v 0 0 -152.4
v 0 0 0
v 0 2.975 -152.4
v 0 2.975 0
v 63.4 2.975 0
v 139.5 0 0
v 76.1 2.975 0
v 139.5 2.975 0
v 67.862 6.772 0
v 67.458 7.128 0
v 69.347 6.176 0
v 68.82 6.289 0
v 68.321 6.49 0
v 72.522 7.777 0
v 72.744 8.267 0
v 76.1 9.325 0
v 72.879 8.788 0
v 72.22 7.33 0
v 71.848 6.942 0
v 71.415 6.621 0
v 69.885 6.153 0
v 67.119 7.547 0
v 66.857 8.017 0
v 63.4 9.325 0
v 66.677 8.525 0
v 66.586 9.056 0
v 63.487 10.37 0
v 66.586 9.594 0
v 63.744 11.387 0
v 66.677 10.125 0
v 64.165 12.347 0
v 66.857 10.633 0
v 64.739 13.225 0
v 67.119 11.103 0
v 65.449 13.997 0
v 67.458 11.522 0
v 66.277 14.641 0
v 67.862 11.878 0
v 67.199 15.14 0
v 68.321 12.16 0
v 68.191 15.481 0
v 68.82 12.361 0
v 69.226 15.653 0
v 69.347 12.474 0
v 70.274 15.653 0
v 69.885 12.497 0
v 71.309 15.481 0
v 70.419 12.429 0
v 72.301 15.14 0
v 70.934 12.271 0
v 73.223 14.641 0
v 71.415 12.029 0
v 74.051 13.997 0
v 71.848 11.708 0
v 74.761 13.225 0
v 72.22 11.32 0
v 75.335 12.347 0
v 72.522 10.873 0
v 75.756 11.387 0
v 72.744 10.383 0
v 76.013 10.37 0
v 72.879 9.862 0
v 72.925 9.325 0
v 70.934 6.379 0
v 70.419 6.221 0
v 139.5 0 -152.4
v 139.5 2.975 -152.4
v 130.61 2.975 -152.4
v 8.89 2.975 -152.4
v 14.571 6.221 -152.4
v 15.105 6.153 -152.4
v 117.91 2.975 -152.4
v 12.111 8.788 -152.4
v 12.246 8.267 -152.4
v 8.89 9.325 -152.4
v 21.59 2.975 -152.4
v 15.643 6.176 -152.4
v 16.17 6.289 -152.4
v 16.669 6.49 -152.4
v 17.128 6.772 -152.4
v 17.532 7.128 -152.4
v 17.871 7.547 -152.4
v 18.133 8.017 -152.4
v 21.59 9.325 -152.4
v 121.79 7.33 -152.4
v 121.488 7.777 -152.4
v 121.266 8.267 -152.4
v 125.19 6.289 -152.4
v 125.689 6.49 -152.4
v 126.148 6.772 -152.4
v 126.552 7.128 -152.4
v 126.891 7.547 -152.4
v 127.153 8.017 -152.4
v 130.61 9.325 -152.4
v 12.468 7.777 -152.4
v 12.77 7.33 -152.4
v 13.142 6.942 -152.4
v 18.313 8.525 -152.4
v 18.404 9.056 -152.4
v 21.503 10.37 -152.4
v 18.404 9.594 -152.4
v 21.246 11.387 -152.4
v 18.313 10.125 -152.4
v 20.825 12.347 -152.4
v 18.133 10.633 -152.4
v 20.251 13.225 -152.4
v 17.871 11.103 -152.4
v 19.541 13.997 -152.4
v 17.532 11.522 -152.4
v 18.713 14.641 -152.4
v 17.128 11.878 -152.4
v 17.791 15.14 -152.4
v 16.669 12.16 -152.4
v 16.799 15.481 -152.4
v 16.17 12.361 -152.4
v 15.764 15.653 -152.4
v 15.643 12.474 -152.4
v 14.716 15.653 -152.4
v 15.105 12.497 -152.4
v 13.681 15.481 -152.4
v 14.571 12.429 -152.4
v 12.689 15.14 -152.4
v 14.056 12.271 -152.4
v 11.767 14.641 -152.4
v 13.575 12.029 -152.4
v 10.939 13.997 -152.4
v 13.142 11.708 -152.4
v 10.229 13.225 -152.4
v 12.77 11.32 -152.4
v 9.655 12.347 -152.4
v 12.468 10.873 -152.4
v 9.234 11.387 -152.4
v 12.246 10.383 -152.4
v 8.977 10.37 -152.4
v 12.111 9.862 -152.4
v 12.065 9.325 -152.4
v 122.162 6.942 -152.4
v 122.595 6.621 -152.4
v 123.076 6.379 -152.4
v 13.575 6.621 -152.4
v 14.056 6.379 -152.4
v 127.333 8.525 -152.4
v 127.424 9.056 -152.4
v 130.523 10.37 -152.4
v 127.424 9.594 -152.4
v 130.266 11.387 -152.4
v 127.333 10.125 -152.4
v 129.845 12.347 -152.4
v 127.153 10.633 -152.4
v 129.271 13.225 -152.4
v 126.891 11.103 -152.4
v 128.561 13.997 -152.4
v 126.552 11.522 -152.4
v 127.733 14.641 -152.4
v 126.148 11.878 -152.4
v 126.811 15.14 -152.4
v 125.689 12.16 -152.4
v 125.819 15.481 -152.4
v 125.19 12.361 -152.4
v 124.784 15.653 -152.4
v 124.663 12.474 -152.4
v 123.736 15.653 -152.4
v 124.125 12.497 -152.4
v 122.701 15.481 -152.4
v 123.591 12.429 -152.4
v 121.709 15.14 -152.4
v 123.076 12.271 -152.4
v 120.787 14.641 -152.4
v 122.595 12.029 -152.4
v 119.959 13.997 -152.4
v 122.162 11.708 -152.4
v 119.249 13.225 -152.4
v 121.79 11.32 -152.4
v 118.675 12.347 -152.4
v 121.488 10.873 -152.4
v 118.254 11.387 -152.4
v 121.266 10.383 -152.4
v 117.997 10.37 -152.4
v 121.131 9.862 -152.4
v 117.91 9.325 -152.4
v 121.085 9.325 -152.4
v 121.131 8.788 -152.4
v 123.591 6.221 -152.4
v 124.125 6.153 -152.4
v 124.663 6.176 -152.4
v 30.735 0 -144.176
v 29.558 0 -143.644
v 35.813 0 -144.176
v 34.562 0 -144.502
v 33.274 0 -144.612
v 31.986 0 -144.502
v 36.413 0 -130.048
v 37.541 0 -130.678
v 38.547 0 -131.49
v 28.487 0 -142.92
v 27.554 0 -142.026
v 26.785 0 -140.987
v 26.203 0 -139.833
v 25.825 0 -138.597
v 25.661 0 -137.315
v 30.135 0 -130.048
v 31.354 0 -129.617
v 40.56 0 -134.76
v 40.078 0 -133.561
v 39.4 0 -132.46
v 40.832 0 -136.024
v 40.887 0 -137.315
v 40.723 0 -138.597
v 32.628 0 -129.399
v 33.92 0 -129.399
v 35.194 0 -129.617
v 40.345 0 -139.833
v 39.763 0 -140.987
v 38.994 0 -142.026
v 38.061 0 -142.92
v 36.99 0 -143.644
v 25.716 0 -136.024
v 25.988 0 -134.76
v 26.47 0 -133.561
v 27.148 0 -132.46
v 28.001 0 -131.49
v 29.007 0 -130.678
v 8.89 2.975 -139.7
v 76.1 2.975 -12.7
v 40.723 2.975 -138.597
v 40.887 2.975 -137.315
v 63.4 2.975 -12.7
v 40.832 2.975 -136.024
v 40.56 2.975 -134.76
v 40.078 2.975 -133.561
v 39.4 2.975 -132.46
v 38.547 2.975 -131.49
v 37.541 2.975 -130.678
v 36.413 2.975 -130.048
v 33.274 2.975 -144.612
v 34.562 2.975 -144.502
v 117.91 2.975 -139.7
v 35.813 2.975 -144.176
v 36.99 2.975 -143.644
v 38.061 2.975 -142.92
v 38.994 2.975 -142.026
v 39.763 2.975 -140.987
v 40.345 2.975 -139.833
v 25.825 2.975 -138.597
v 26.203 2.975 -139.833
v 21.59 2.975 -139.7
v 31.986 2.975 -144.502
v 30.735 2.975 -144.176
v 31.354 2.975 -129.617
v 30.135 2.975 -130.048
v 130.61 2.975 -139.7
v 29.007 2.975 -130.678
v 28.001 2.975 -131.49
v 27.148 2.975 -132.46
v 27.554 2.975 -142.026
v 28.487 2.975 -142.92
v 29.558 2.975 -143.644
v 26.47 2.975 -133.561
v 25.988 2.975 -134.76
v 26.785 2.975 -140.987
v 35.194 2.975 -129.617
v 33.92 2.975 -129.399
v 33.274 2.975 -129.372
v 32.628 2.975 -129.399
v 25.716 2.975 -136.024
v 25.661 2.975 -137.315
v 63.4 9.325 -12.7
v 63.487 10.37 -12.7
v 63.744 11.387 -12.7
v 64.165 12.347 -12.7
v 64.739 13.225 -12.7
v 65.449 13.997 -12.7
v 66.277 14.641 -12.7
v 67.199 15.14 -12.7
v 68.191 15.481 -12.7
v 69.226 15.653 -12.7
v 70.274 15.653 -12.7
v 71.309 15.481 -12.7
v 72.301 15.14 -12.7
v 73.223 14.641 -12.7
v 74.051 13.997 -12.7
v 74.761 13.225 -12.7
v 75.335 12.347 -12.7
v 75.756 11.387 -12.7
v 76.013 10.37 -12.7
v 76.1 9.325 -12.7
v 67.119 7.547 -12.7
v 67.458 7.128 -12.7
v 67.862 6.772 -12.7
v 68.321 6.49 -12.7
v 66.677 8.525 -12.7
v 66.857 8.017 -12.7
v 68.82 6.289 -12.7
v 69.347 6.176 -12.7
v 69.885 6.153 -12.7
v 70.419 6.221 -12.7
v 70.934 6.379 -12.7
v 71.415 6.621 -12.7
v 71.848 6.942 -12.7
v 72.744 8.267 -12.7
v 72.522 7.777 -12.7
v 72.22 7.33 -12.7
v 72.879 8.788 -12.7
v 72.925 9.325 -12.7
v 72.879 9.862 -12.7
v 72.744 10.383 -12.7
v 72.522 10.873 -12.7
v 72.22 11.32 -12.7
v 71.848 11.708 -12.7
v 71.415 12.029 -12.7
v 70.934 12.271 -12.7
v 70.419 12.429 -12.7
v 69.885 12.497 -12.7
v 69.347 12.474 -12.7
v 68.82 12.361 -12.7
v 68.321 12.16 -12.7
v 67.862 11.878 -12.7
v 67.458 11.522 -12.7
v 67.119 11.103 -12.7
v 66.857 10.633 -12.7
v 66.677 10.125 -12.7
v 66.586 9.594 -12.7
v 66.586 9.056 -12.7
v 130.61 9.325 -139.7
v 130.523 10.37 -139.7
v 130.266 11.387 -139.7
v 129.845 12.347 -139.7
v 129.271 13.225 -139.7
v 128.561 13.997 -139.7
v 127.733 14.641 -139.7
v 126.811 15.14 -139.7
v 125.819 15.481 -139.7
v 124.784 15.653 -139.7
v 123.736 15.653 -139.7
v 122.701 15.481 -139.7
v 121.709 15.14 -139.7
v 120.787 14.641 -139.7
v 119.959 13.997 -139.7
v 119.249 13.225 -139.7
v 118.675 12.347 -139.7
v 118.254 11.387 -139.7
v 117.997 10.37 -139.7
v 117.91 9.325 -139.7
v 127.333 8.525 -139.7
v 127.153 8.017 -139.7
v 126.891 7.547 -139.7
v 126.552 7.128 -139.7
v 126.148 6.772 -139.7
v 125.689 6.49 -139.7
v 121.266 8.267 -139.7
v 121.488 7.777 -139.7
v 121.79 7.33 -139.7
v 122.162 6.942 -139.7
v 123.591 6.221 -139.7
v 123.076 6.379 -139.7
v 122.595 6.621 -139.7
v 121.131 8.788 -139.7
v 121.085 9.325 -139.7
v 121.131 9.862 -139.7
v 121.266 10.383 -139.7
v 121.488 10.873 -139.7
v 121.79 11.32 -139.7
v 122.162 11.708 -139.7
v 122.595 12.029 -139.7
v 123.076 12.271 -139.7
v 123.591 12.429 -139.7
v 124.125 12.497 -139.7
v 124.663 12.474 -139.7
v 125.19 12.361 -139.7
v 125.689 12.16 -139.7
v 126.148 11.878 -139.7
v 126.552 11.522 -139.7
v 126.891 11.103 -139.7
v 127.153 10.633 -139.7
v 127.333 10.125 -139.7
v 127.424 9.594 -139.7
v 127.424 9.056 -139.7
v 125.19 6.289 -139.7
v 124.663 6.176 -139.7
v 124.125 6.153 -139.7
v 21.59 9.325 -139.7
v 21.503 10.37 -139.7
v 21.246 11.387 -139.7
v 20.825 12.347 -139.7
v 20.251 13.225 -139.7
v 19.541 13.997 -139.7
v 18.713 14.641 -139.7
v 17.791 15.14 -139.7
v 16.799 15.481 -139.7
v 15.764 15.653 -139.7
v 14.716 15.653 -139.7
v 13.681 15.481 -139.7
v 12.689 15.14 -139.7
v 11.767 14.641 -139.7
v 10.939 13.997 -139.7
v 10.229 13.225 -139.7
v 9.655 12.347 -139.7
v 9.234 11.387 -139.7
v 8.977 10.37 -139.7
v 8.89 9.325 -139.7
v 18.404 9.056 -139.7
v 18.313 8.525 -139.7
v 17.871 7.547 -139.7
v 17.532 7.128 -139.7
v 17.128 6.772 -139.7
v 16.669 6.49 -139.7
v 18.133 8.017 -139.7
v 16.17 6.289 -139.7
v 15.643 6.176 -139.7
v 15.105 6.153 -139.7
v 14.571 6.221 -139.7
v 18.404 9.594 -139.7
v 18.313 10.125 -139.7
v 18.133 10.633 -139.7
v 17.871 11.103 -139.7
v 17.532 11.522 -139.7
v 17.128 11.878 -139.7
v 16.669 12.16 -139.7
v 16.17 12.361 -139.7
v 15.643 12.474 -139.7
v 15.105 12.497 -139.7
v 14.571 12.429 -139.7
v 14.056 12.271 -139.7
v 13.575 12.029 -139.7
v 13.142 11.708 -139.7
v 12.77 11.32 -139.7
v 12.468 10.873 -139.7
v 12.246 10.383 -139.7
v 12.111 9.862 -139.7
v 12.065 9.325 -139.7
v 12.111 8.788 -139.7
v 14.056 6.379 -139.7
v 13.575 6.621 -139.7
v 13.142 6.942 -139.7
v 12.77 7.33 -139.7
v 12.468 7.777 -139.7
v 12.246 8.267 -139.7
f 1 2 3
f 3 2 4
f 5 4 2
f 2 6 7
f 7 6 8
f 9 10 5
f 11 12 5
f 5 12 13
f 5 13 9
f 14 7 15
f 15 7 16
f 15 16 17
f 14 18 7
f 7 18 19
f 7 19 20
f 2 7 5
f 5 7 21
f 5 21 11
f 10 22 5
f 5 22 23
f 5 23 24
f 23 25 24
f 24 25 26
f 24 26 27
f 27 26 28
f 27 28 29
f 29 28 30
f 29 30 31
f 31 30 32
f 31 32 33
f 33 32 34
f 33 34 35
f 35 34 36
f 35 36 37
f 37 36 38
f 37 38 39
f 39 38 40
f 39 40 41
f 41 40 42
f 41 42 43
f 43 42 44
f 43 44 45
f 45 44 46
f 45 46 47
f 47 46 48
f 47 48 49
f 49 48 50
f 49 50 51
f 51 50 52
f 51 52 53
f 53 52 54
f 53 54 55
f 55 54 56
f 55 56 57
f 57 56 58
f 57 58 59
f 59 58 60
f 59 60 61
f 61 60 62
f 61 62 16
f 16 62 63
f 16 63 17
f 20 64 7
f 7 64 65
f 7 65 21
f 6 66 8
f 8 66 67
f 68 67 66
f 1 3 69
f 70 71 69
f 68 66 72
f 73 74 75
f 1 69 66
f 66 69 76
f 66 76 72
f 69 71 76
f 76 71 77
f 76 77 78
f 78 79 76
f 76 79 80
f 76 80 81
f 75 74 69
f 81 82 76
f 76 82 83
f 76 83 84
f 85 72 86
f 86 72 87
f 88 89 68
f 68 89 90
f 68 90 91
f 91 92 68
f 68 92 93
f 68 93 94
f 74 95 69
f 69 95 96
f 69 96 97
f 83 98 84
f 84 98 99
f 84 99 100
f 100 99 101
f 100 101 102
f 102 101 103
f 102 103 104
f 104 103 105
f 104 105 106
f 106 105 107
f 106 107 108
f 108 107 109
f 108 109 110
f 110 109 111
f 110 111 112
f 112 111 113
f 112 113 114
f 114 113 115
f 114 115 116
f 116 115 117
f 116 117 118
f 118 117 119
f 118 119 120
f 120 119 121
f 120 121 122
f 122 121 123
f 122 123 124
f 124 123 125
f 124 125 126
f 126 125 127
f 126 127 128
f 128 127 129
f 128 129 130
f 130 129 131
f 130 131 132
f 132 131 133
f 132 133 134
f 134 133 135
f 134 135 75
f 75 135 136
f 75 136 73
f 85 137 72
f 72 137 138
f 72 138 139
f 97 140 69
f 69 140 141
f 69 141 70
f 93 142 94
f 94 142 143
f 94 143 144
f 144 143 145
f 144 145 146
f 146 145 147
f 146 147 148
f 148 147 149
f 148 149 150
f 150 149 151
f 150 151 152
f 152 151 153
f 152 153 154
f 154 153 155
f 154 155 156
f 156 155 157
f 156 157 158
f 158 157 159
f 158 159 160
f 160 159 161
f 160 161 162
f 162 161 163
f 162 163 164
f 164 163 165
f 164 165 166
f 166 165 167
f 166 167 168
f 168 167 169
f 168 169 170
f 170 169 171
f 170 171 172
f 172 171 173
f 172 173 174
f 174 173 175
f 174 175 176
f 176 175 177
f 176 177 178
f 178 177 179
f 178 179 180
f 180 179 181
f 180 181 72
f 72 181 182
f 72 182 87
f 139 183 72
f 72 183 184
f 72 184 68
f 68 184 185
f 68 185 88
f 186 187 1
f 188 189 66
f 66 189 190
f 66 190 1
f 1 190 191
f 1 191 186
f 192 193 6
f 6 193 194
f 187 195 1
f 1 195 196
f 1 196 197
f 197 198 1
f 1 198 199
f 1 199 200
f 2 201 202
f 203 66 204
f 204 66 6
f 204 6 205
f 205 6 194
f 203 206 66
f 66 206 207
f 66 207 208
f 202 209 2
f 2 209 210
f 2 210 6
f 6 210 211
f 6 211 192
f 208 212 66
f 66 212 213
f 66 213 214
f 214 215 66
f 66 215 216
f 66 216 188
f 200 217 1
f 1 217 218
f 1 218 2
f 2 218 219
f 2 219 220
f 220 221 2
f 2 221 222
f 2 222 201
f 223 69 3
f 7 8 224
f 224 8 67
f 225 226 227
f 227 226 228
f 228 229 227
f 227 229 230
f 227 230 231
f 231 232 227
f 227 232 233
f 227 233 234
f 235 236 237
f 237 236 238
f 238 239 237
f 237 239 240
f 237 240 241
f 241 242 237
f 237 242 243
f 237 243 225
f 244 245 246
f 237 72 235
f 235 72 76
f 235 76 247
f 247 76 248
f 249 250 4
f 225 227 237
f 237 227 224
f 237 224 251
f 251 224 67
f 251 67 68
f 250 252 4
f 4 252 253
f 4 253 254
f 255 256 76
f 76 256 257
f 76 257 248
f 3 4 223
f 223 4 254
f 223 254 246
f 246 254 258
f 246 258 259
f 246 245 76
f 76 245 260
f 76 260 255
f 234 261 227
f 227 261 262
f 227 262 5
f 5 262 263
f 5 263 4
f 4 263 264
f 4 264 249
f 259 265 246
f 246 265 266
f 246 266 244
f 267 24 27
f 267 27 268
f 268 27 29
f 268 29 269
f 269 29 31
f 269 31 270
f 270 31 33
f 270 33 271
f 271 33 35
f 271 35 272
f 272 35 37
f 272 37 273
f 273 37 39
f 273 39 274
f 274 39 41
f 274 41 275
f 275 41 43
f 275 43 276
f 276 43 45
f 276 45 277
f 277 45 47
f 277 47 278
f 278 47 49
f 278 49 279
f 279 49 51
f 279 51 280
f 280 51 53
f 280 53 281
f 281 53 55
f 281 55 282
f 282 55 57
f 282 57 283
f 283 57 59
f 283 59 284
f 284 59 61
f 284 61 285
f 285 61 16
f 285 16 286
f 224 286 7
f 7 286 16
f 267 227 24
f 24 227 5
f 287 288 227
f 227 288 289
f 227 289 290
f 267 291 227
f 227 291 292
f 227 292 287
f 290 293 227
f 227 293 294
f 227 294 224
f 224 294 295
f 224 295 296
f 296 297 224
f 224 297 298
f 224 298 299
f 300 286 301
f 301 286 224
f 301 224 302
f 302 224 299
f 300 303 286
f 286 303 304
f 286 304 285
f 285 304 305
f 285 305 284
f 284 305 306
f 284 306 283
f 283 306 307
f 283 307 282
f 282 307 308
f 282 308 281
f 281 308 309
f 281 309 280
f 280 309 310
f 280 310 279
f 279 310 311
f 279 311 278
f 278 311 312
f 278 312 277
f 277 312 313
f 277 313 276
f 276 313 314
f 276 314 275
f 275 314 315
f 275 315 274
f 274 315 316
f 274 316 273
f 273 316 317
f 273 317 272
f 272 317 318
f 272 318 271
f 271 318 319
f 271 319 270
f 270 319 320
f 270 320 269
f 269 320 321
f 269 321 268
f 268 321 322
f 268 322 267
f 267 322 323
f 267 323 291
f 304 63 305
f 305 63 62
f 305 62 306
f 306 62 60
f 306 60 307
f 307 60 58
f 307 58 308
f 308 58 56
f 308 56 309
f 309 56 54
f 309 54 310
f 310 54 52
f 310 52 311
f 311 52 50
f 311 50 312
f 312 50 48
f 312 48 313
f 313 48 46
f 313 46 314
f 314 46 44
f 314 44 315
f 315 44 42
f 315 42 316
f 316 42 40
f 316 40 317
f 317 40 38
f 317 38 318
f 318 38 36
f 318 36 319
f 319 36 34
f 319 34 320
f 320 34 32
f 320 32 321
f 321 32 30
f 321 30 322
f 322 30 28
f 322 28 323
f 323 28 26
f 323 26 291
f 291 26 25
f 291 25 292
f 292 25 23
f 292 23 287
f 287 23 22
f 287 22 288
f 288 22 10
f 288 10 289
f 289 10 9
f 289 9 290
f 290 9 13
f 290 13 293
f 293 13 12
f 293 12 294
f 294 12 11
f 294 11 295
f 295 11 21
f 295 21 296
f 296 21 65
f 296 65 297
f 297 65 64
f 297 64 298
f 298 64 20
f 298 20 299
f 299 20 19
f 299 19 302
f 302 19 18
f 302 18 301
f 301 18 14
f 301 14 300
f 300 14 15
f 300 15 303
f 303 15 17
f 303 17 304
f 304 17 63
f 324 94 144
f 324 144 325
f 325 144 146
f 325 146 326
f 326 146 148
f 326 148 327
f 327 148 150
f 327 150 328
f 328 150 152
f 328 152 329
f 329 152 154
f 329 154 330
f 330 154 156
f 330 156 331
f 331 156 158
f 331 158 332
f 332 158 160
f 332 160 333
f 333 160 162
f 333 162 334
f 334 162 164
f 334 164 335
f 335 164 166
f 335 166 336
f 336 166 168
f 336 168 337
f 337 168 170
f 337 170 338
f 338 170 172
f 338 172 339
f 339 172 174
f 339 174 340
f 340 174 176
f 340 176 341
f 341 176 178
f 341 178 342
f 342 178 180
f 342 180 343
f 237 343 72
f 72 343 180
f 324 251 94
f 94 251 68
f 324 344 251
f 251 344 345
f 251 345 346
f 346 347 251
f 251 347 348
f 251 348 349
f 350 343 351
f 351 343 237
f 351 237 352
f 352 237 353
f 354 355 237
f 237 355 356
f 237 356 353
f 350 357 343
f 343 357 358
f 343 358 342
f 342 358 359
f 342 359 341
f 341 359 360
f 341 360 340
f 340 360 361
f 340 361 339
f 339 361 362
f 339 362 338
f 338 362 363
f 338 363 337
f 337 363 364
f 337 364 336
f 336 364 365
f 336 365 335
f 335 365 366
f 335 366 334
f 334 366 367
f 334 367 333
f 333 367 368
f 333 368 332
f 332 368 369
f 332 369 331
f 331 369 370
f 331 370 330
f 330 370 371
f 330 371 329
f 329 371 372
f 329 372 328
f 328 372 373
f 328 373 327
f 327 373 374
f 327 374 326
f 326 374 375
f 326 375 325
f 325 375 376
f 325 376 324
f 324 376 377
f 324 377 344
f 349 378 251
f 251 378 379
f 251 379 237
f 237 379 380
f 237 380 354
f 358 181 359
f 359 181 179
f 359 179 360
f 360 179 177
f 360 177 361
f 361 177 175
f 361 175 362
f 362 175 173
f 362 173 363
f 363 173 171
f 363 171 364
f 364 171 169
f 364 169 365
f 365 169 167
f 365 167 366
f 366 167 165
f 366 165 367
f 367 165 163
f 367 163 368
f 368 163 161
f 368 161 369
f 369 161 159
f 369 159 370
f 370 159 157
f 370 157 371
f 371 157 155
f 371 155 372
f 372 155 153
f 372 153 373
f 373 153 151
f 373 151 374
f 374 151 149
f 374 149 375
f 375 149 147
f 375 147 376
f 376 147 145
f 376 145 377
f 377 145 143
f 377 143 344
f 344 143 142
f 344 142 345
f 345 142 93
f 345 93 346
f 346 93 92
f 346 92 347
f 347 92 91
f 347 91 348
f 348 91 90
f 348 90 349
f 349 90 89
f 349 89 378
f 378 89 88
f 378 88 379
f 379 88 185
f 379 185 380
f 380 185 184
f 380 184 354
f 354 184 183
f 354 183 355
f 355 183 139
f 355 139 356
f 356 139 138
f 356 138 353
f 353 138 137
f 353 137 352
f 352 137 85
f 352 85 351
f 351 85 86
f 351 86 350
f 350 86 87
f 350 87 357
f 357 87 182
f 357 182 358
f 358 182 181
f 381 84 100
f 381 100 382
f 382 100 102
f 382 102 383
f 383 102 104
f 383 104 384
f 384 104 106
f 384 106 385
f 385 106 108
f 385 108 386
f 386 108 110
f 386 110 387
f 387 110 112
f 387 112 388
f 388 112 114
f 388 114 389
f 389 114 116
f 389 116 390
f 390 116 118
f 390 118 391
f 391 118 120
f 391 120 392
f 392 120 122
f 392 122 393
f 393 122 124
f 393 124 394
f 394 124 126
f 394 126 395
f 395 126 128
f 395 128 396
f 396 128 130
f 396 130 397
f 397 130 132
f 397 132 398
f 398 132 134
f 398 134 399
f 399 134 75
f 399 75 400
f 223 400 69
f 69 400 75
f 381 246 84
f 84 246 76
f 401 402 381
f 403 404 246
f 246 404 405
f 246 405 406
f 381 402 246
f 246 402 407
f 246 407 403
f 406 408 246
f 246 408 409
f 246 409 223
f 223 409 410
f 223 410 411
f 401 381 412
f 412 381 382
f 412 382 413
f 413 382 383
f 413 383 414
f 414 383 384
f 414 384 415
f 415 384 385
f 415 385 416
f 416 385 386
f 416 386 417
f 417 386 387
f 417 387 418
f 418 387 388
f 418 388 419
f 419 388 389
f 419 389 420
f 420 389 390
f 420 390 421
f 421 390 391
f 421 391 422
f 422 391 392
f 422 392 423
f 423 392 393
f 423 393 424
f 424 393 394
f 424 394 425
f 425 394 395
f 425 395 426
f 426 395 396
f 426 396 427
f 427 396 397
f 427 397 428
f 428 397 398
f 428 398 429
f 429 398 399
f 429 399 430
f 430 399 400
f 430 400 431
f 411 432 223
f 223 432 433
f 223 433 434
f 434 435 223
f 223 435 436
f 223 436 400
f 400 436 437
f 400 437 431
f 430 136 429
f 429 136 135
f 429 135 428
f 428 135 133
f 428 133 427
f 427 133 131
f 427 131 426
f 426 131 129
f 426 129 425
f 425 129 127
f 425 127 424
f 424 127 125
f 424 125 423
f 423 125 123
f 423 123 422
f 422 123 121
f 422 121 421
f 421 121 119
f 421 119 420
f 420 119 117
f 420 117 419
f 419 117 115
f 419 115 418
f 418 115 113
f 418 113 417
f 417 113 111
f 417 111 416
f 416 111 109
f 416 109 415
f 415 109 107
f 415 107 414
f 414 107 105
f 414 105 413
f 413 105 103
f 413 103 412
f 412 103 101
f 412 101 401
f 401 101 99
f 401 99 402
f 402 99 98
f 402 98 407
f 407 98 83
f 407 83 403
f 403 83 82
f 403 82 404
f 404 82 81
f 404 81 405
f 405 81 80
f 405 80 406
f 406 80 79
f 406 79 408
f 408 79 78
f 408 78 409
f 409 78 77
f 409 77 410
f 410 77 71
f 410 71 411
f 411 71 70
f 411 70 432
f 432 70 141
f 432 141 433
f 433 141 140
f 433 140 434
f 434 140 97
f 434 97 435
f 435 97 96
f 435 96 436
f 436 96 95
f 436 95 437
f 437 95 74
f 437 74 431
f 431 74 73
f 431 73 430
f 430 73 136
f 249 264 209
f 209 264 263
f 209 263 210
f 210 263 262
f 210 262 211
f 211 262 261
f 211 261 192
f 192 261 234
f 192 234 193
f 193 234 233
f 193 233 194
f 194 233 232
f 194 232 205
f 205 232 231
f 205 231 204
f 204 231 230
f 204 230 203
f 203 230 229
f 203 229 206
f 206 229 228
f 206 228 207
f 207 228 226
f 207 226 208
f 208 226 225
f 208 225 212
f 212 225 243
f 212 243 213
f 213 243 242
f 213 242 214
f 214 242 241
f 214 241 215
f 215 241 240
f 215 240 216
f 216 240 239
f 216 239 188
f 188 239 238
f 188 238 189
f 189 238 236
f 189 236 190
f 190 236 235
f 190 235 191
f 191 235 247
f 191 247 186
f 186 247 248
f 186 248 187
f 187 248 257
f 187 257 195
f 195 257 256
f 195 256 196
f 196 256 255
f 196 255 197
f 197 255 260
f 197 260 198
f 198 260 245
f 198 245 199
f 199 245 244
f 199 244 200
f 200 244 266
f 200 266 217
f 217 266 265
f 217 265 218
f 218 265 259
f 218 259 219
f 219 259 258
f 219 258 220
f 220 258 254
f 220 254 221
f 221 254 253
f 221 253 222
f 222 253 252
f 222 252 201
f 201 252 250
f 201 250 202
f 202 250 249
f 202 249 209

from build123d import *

# Parameters (mm, degrees)
SKETCH1_W           = 139.5
SKETCH1_H           = 152.4
BOSS_EXTRUDE1_DEPTH = 6.35
SKETCH2_W           = 139.5
SKETCH2_H           = 152.4
CUT_EXTRUDE1_DEPTH  = 3.375
SKETCH3_R           = 3.175
BOSS_EXTRUDE2_DEPTH = 12.7
SKETCH4_R           = 3.175000001
SKETCH4_R_2         = 3.175
BOSS_EXTRUDE3_DEPTH = 12.7
SKETCH5_R           = 7.62
CUT_EXTRUDE2_DEPTH  = 16.675000317


with BuildPart() as part:
    # Sketch1 → Boss-Extrude1 (new body)
    with BuildSketch(Plane(origin=(0, 0, 0), x_dir=(1, 0, 0), z_dir=(0, 1, 0))):
        with Locations((69.75, 76.2)):
            Rectangle(SKETCH1_W, SKETCH1_H)
    extrude(amount=BOSS_EXTRUDE1_DEPTH)

    # Sketch2 → Cut-Extrude1 (cut)
    with BuildSketch(Plane(origin=(0, 6.35, 0), x_dir=(1, 0, 0), z_dir=(0, 1, 0))):
        with Locations((69.75, 76.2)):
            Rectangle(SKETCH2_W, SKETCH2_H)
    extrude(amount=-CUT_EXTRUDE1_DEPTH, mode=Mode.SUBTRACT)

    # Sketch3 → Boss-Extrude2 (add)
    with BuildSketch(Plane.XY):
        with BuildLine():
            Line((63.4, 9.325), (63.4, 2.975))
            Line((63.4, 2.975), (76.1, 2.975))
            Line((76.1, 2.975), (76.1, 9.325000633))
            ThreePointArc((76.1, 9.325000633), (69.749999683, 15.675000317), (63.4, 9.325))
        make_face()
        with Locations((69.75, 9.325000317)):
            Circle(SKETCH3_R, mode=Mode.SUBTRACT)
    extrude(amount=-BOSS_EXTRUDE2_DEPTH)

    # Sketch4 → Boss-Extrude3 (add)
    with BuildSketch(Plane(origin=(0, 0, -152.4), x_dir=(-1, 0, 0), z_dir=(0, 0, -1))):
        with BuildLine():
            Line((-130.61, 9.325), (-130.61, 2.975))
            Line((-130.61, 2.975), (-117.91, 2.975))
            Line((-117.91, 2.975), (-117.91, 9.325))
            ThreePointArc((-117.91, 9.325), (-124.26, 15.675), (-130.61, 9.325))
        make_face()
        with Locations((-124.26, 9.325)):
            Circle(SKETCH4_R, mode=Mode.SUBTRACT)
        with BuildLine():
            Line((-21.59, 9.325), (-21.59, 2.975))
            Line((-21.59, 2.975), (-8.89, 2.975))
            Line((-8.89, 2.975), (-8.89, 9.325))
            ThreePointArc((-8.89, 9.325), (-15.24, 15.675), (-21.59, 9.325))
        make_face()
        with Locations((-15.24, 9.325)):
            Circle(SKETCH4_R_2, mode=Mode.SUBTRACT)
    extrude(amount=-BOSS_EXTRUDE3_DEPTH)

    # Sketch5 → Cut-Extrude2 (cut, through all)
    with BuildSketch(Plane.XZ):
        with Locations((33.274, -136.991598)):
            Circle(SKETCH5_R)
    extrude(amount=-CUT_EXTRUDE2_DEPTH, mode=Mode.SUBTRACT)


solid = part.part
